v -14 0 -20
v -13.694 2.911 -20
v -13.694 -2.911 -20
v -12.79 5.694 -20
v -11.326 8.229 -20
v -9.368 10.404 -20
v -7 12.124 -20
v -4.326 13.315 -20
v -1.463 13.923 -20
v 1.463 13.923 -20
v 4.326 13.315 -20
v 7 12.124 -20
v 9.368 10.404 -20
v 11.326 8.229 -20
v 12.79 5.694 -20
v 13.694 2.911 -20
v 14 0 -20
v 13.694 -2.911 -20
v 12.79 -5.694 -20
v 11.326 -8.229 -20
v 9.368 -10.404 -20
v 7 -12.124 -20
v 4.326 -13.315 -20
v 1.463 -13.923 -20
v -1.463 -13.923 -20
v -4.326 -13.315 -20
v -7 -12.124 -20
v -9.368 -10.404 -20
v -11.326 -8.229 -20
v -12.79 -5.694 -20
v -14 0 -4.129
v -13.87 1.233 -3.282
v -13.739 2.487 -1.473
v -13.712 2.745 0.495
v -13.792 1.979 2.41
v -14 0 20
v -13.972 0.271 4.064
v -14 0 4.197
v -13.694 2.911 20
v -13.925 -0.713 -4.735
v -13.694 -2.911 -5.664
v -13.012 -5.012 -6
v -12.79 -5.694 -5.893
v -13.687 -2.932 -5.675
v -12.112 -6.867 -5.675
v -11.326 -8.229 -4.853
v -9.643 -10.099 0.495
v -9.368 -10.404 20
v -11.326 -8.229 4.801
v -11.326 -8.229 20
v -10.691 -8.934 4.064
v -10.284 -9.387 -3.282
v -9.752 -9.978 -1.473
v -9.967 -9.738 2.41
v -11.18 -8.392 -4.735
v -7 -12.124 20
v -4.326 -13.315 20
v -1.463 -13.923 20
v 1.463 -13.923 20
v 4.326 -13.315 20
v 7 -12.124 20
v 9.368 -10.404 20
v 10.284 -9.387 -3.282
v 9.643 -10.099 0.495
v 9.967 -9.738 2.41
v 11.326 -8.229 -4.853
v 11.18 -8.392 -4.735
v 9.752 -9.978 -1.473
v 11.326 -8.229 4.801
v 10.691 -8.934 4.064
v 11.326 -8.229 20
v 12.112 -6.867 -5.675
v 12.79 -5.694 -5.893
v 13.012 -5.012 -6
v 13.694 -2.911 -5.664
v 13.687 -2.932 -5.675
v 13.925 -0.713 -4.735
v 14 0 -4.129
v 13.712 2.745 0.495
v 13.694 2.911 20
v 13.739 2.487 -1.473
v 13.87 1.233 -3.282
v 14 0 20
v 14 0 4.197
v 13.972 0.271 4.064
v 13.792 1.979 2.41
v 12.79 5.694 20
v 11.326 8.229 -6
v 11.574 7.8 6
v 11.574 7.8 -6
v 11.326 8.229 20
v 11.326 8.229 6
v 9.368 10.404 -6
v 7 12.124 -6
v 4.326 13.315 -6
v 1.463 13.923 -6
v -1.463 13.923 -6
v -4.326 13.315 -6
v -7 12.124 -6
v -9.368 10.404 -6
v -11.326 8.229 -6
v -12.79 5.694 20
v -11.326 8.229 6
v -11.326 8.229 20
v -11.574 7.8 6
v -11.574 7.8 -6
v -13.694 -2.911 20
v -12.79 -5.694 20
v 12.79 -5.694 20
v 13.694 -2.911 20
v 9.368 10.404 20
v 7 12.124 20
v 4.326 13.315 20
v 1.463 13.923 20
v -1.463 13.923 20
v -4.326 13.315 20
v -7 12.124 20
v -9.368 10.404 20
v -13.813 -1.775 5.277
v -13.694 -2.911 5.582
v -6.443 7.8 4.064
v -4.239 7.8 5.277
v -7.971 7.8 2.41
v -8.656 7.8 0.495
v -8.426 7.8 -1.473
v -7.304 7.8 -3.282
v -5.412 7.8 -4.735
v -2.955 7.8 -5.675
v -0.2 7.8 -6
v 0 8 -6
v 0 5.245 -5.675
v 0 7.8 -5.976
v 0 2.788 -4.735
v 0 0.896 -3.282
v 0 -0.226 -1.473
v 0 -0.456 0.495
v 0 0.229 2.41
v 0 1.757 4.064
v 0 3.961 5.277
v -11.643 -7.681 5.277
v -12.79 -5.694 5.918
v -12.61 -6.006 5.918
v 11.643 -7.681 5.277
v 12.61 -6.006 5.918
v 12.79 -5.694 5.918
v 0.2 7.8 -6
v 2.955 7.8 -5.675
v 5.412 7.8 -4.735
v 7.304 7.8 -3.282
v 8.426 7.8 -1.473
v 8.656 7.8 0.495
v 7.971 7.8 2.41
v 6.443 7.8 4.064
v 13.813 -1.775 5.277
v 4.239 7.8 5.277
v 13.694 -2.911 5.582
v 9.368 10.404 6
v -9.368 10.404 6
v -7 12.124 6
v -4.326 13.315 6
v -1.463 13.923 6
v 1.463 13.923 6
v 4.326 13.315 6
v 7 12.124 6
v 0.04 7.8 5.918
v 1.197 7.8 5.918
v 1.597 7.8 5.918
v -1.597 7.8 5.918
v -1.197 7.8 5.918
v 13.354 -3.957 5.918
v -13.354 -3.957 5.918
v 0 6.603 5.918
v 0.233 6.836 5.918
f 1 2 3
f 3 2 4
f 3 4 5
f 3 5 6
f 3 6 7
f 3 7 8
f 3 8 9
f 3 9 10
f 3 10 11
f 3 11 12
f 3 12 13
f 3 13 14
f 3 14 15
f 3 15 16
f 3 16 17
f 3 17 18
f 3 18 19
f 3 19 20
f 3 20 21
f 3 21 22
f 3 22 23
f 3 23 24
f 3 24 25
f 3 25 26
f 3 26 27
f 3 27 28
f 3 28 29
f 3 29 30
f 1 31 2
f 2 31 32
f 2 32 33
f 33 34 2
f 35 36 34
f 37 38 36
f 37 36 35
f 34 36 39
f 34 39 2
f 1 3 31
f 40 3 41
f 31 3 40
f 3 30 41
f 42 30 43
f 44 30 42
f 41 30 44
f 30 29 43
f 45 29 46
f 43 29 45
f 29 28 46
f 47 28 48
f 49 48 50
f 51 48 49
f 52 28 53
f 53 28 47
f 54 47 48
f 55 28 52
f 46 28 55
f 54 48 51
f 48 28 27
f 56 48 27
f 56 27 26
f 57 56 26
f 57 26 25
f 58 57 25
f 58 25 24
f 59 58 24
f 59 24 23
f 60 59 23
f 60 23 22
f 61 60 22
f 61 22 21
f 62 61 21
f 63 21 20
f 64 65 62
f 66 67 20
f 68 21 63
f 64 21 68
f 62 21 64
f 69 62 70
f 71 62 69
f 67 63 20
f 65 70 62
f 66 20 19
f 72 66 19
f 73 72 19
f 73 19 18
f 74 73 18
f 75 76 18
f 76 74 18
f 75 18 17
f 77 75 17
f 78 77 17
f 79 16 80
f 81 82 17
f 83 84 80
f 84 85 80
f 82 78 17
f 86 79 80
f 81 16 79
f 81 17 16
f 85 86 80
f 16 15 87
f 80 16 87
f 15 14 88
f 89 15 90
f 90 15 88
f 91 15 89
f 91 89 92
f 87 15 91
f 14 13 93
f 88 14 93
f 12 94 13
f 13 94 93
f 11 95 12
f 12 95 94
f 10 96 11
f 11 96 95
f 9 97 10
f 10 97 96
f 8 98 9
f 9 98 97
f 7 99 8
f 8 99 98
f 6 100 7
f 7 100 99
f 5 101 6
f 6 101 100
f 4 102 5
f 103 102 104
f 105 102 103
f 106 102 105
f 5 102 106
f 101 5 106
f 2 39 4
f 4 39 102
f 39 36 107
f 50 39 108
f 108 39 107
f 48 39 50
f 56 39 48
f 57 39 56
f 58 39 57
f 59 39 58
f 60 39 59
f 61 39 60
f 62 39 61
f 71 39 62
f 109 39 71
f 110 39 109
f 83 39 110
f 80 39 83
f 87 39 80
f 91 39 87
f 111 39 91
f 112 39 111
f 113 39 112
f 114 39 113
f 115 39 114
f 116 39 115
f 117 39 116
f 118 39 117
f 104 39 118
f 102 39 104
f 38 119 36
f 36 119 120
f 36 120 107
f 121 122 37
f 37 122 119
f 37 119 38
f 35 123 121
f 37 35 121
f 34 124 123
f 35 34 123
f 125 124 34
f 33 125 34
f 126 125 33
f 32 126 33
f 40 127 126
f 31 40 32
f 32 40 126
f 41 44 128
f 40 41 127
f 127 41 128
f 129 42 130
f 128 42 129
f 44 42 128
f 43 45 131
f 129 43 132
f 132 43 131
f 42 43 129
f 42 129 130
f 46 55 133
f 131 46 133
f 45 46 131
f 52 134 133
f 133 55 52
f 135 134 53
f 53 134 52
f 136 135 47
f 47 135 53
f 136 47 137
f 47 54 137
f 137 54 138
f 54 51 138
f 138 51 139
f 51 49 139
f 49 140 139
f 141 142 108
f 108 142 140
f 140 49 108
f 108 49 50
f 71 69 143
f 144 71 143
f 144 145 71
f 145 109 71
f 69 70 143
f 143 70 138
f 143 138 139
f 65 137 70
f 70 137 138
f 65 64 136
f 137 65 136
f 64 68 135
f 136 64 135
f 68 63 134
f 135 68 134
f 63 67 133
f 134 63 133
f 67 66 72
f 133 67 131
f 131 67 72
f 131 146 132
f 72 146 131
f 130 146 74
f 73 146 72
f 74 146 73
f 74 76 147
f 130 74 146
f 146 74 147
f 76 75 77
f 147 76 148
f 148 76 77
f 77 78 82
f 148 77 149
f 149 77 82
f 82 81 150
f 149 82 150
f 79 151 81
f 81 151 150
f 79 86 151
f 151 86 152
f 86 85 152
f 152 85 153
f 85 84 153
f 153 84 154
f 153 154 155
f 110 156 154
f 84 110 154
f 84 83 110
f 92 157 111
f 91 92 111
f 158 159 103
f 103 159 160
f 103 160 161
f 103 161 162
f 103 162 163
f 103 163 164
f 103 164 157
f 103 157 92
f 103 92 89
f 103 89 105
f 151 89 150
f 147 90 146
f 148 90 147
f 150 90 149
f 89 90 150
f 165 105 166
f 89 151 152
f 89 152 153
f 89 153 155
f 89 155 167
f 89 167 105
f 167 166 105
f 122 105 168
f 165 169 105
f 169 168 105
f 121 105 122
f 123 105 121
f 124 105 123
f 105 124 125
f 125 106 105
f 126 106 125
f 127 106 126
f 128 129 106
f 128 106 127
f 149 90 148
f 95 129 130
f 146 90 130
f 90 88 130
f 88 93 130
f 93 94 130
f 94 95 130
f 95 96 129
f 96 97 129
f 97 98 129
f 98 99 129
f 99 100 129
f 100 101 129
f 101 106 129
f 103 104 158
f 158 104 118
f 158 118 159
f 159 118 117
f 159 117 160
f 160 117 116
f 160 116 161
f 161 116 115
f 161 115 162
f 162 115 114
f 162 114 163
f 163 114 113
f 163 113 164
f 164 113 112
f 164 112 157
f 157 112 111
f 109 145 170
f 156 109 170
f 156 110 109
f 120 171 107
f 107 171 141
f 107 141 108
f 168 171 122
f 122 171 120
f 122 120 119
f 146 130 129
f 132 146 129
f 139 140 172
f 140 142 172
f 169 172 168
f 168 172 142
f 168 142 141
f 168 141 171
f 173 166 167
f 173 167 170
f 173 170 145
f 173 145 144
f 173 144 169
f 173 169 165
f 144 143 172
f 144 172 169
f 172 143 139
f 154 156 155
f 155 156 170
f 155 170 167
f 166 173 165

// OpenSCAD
s=40;
c=s*.8;
r=3;
rb=14;
h=s*1.2;

cd=r*2;
module example004()
{

difference() {
	difference() {
      translate([0,0,-s/2])
		cylinder(h=s,r=rb);
      union() {
         translate([0,s/5,0])
      		rotate([0,90,45]) 
         translate([0,0,-h/2])
				cylinder(h=h,r=2*r);

         translate([0,s/5,0])
			rotate([0,90,135])
          translate([0,0,-h/2])
				cylinder(h=h,r=2*r);
      }
	}
//rotate([0,0,45])

translate([-cd*2.5,cd*1.3,-cd])
cube([cd*5,cd*5,cd*2]);
}
}

example004();
